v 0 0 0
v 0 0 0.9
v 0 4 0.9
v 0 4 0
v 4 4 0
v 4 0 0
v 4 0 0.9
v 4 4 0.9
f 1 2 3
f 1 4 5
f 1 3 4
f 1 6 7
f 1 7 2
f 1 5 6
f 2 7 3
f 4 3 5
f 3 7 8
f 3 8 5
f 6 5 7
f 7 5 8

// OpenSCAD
/* Warning, this is a very basic generator with a lot of approximation 
input data : [VQFN, P2A, 4x4x0.9mm, 26, , A, C04-01034A]
generated by com.zoubworld.electronics.cad.model3d.Basic
Date : Sun Feb 15 10:50:49 CET 2026
*/

//body
color("black")
translate([0,0,0])
cube([4.0,4.0,0.9], center=false);
